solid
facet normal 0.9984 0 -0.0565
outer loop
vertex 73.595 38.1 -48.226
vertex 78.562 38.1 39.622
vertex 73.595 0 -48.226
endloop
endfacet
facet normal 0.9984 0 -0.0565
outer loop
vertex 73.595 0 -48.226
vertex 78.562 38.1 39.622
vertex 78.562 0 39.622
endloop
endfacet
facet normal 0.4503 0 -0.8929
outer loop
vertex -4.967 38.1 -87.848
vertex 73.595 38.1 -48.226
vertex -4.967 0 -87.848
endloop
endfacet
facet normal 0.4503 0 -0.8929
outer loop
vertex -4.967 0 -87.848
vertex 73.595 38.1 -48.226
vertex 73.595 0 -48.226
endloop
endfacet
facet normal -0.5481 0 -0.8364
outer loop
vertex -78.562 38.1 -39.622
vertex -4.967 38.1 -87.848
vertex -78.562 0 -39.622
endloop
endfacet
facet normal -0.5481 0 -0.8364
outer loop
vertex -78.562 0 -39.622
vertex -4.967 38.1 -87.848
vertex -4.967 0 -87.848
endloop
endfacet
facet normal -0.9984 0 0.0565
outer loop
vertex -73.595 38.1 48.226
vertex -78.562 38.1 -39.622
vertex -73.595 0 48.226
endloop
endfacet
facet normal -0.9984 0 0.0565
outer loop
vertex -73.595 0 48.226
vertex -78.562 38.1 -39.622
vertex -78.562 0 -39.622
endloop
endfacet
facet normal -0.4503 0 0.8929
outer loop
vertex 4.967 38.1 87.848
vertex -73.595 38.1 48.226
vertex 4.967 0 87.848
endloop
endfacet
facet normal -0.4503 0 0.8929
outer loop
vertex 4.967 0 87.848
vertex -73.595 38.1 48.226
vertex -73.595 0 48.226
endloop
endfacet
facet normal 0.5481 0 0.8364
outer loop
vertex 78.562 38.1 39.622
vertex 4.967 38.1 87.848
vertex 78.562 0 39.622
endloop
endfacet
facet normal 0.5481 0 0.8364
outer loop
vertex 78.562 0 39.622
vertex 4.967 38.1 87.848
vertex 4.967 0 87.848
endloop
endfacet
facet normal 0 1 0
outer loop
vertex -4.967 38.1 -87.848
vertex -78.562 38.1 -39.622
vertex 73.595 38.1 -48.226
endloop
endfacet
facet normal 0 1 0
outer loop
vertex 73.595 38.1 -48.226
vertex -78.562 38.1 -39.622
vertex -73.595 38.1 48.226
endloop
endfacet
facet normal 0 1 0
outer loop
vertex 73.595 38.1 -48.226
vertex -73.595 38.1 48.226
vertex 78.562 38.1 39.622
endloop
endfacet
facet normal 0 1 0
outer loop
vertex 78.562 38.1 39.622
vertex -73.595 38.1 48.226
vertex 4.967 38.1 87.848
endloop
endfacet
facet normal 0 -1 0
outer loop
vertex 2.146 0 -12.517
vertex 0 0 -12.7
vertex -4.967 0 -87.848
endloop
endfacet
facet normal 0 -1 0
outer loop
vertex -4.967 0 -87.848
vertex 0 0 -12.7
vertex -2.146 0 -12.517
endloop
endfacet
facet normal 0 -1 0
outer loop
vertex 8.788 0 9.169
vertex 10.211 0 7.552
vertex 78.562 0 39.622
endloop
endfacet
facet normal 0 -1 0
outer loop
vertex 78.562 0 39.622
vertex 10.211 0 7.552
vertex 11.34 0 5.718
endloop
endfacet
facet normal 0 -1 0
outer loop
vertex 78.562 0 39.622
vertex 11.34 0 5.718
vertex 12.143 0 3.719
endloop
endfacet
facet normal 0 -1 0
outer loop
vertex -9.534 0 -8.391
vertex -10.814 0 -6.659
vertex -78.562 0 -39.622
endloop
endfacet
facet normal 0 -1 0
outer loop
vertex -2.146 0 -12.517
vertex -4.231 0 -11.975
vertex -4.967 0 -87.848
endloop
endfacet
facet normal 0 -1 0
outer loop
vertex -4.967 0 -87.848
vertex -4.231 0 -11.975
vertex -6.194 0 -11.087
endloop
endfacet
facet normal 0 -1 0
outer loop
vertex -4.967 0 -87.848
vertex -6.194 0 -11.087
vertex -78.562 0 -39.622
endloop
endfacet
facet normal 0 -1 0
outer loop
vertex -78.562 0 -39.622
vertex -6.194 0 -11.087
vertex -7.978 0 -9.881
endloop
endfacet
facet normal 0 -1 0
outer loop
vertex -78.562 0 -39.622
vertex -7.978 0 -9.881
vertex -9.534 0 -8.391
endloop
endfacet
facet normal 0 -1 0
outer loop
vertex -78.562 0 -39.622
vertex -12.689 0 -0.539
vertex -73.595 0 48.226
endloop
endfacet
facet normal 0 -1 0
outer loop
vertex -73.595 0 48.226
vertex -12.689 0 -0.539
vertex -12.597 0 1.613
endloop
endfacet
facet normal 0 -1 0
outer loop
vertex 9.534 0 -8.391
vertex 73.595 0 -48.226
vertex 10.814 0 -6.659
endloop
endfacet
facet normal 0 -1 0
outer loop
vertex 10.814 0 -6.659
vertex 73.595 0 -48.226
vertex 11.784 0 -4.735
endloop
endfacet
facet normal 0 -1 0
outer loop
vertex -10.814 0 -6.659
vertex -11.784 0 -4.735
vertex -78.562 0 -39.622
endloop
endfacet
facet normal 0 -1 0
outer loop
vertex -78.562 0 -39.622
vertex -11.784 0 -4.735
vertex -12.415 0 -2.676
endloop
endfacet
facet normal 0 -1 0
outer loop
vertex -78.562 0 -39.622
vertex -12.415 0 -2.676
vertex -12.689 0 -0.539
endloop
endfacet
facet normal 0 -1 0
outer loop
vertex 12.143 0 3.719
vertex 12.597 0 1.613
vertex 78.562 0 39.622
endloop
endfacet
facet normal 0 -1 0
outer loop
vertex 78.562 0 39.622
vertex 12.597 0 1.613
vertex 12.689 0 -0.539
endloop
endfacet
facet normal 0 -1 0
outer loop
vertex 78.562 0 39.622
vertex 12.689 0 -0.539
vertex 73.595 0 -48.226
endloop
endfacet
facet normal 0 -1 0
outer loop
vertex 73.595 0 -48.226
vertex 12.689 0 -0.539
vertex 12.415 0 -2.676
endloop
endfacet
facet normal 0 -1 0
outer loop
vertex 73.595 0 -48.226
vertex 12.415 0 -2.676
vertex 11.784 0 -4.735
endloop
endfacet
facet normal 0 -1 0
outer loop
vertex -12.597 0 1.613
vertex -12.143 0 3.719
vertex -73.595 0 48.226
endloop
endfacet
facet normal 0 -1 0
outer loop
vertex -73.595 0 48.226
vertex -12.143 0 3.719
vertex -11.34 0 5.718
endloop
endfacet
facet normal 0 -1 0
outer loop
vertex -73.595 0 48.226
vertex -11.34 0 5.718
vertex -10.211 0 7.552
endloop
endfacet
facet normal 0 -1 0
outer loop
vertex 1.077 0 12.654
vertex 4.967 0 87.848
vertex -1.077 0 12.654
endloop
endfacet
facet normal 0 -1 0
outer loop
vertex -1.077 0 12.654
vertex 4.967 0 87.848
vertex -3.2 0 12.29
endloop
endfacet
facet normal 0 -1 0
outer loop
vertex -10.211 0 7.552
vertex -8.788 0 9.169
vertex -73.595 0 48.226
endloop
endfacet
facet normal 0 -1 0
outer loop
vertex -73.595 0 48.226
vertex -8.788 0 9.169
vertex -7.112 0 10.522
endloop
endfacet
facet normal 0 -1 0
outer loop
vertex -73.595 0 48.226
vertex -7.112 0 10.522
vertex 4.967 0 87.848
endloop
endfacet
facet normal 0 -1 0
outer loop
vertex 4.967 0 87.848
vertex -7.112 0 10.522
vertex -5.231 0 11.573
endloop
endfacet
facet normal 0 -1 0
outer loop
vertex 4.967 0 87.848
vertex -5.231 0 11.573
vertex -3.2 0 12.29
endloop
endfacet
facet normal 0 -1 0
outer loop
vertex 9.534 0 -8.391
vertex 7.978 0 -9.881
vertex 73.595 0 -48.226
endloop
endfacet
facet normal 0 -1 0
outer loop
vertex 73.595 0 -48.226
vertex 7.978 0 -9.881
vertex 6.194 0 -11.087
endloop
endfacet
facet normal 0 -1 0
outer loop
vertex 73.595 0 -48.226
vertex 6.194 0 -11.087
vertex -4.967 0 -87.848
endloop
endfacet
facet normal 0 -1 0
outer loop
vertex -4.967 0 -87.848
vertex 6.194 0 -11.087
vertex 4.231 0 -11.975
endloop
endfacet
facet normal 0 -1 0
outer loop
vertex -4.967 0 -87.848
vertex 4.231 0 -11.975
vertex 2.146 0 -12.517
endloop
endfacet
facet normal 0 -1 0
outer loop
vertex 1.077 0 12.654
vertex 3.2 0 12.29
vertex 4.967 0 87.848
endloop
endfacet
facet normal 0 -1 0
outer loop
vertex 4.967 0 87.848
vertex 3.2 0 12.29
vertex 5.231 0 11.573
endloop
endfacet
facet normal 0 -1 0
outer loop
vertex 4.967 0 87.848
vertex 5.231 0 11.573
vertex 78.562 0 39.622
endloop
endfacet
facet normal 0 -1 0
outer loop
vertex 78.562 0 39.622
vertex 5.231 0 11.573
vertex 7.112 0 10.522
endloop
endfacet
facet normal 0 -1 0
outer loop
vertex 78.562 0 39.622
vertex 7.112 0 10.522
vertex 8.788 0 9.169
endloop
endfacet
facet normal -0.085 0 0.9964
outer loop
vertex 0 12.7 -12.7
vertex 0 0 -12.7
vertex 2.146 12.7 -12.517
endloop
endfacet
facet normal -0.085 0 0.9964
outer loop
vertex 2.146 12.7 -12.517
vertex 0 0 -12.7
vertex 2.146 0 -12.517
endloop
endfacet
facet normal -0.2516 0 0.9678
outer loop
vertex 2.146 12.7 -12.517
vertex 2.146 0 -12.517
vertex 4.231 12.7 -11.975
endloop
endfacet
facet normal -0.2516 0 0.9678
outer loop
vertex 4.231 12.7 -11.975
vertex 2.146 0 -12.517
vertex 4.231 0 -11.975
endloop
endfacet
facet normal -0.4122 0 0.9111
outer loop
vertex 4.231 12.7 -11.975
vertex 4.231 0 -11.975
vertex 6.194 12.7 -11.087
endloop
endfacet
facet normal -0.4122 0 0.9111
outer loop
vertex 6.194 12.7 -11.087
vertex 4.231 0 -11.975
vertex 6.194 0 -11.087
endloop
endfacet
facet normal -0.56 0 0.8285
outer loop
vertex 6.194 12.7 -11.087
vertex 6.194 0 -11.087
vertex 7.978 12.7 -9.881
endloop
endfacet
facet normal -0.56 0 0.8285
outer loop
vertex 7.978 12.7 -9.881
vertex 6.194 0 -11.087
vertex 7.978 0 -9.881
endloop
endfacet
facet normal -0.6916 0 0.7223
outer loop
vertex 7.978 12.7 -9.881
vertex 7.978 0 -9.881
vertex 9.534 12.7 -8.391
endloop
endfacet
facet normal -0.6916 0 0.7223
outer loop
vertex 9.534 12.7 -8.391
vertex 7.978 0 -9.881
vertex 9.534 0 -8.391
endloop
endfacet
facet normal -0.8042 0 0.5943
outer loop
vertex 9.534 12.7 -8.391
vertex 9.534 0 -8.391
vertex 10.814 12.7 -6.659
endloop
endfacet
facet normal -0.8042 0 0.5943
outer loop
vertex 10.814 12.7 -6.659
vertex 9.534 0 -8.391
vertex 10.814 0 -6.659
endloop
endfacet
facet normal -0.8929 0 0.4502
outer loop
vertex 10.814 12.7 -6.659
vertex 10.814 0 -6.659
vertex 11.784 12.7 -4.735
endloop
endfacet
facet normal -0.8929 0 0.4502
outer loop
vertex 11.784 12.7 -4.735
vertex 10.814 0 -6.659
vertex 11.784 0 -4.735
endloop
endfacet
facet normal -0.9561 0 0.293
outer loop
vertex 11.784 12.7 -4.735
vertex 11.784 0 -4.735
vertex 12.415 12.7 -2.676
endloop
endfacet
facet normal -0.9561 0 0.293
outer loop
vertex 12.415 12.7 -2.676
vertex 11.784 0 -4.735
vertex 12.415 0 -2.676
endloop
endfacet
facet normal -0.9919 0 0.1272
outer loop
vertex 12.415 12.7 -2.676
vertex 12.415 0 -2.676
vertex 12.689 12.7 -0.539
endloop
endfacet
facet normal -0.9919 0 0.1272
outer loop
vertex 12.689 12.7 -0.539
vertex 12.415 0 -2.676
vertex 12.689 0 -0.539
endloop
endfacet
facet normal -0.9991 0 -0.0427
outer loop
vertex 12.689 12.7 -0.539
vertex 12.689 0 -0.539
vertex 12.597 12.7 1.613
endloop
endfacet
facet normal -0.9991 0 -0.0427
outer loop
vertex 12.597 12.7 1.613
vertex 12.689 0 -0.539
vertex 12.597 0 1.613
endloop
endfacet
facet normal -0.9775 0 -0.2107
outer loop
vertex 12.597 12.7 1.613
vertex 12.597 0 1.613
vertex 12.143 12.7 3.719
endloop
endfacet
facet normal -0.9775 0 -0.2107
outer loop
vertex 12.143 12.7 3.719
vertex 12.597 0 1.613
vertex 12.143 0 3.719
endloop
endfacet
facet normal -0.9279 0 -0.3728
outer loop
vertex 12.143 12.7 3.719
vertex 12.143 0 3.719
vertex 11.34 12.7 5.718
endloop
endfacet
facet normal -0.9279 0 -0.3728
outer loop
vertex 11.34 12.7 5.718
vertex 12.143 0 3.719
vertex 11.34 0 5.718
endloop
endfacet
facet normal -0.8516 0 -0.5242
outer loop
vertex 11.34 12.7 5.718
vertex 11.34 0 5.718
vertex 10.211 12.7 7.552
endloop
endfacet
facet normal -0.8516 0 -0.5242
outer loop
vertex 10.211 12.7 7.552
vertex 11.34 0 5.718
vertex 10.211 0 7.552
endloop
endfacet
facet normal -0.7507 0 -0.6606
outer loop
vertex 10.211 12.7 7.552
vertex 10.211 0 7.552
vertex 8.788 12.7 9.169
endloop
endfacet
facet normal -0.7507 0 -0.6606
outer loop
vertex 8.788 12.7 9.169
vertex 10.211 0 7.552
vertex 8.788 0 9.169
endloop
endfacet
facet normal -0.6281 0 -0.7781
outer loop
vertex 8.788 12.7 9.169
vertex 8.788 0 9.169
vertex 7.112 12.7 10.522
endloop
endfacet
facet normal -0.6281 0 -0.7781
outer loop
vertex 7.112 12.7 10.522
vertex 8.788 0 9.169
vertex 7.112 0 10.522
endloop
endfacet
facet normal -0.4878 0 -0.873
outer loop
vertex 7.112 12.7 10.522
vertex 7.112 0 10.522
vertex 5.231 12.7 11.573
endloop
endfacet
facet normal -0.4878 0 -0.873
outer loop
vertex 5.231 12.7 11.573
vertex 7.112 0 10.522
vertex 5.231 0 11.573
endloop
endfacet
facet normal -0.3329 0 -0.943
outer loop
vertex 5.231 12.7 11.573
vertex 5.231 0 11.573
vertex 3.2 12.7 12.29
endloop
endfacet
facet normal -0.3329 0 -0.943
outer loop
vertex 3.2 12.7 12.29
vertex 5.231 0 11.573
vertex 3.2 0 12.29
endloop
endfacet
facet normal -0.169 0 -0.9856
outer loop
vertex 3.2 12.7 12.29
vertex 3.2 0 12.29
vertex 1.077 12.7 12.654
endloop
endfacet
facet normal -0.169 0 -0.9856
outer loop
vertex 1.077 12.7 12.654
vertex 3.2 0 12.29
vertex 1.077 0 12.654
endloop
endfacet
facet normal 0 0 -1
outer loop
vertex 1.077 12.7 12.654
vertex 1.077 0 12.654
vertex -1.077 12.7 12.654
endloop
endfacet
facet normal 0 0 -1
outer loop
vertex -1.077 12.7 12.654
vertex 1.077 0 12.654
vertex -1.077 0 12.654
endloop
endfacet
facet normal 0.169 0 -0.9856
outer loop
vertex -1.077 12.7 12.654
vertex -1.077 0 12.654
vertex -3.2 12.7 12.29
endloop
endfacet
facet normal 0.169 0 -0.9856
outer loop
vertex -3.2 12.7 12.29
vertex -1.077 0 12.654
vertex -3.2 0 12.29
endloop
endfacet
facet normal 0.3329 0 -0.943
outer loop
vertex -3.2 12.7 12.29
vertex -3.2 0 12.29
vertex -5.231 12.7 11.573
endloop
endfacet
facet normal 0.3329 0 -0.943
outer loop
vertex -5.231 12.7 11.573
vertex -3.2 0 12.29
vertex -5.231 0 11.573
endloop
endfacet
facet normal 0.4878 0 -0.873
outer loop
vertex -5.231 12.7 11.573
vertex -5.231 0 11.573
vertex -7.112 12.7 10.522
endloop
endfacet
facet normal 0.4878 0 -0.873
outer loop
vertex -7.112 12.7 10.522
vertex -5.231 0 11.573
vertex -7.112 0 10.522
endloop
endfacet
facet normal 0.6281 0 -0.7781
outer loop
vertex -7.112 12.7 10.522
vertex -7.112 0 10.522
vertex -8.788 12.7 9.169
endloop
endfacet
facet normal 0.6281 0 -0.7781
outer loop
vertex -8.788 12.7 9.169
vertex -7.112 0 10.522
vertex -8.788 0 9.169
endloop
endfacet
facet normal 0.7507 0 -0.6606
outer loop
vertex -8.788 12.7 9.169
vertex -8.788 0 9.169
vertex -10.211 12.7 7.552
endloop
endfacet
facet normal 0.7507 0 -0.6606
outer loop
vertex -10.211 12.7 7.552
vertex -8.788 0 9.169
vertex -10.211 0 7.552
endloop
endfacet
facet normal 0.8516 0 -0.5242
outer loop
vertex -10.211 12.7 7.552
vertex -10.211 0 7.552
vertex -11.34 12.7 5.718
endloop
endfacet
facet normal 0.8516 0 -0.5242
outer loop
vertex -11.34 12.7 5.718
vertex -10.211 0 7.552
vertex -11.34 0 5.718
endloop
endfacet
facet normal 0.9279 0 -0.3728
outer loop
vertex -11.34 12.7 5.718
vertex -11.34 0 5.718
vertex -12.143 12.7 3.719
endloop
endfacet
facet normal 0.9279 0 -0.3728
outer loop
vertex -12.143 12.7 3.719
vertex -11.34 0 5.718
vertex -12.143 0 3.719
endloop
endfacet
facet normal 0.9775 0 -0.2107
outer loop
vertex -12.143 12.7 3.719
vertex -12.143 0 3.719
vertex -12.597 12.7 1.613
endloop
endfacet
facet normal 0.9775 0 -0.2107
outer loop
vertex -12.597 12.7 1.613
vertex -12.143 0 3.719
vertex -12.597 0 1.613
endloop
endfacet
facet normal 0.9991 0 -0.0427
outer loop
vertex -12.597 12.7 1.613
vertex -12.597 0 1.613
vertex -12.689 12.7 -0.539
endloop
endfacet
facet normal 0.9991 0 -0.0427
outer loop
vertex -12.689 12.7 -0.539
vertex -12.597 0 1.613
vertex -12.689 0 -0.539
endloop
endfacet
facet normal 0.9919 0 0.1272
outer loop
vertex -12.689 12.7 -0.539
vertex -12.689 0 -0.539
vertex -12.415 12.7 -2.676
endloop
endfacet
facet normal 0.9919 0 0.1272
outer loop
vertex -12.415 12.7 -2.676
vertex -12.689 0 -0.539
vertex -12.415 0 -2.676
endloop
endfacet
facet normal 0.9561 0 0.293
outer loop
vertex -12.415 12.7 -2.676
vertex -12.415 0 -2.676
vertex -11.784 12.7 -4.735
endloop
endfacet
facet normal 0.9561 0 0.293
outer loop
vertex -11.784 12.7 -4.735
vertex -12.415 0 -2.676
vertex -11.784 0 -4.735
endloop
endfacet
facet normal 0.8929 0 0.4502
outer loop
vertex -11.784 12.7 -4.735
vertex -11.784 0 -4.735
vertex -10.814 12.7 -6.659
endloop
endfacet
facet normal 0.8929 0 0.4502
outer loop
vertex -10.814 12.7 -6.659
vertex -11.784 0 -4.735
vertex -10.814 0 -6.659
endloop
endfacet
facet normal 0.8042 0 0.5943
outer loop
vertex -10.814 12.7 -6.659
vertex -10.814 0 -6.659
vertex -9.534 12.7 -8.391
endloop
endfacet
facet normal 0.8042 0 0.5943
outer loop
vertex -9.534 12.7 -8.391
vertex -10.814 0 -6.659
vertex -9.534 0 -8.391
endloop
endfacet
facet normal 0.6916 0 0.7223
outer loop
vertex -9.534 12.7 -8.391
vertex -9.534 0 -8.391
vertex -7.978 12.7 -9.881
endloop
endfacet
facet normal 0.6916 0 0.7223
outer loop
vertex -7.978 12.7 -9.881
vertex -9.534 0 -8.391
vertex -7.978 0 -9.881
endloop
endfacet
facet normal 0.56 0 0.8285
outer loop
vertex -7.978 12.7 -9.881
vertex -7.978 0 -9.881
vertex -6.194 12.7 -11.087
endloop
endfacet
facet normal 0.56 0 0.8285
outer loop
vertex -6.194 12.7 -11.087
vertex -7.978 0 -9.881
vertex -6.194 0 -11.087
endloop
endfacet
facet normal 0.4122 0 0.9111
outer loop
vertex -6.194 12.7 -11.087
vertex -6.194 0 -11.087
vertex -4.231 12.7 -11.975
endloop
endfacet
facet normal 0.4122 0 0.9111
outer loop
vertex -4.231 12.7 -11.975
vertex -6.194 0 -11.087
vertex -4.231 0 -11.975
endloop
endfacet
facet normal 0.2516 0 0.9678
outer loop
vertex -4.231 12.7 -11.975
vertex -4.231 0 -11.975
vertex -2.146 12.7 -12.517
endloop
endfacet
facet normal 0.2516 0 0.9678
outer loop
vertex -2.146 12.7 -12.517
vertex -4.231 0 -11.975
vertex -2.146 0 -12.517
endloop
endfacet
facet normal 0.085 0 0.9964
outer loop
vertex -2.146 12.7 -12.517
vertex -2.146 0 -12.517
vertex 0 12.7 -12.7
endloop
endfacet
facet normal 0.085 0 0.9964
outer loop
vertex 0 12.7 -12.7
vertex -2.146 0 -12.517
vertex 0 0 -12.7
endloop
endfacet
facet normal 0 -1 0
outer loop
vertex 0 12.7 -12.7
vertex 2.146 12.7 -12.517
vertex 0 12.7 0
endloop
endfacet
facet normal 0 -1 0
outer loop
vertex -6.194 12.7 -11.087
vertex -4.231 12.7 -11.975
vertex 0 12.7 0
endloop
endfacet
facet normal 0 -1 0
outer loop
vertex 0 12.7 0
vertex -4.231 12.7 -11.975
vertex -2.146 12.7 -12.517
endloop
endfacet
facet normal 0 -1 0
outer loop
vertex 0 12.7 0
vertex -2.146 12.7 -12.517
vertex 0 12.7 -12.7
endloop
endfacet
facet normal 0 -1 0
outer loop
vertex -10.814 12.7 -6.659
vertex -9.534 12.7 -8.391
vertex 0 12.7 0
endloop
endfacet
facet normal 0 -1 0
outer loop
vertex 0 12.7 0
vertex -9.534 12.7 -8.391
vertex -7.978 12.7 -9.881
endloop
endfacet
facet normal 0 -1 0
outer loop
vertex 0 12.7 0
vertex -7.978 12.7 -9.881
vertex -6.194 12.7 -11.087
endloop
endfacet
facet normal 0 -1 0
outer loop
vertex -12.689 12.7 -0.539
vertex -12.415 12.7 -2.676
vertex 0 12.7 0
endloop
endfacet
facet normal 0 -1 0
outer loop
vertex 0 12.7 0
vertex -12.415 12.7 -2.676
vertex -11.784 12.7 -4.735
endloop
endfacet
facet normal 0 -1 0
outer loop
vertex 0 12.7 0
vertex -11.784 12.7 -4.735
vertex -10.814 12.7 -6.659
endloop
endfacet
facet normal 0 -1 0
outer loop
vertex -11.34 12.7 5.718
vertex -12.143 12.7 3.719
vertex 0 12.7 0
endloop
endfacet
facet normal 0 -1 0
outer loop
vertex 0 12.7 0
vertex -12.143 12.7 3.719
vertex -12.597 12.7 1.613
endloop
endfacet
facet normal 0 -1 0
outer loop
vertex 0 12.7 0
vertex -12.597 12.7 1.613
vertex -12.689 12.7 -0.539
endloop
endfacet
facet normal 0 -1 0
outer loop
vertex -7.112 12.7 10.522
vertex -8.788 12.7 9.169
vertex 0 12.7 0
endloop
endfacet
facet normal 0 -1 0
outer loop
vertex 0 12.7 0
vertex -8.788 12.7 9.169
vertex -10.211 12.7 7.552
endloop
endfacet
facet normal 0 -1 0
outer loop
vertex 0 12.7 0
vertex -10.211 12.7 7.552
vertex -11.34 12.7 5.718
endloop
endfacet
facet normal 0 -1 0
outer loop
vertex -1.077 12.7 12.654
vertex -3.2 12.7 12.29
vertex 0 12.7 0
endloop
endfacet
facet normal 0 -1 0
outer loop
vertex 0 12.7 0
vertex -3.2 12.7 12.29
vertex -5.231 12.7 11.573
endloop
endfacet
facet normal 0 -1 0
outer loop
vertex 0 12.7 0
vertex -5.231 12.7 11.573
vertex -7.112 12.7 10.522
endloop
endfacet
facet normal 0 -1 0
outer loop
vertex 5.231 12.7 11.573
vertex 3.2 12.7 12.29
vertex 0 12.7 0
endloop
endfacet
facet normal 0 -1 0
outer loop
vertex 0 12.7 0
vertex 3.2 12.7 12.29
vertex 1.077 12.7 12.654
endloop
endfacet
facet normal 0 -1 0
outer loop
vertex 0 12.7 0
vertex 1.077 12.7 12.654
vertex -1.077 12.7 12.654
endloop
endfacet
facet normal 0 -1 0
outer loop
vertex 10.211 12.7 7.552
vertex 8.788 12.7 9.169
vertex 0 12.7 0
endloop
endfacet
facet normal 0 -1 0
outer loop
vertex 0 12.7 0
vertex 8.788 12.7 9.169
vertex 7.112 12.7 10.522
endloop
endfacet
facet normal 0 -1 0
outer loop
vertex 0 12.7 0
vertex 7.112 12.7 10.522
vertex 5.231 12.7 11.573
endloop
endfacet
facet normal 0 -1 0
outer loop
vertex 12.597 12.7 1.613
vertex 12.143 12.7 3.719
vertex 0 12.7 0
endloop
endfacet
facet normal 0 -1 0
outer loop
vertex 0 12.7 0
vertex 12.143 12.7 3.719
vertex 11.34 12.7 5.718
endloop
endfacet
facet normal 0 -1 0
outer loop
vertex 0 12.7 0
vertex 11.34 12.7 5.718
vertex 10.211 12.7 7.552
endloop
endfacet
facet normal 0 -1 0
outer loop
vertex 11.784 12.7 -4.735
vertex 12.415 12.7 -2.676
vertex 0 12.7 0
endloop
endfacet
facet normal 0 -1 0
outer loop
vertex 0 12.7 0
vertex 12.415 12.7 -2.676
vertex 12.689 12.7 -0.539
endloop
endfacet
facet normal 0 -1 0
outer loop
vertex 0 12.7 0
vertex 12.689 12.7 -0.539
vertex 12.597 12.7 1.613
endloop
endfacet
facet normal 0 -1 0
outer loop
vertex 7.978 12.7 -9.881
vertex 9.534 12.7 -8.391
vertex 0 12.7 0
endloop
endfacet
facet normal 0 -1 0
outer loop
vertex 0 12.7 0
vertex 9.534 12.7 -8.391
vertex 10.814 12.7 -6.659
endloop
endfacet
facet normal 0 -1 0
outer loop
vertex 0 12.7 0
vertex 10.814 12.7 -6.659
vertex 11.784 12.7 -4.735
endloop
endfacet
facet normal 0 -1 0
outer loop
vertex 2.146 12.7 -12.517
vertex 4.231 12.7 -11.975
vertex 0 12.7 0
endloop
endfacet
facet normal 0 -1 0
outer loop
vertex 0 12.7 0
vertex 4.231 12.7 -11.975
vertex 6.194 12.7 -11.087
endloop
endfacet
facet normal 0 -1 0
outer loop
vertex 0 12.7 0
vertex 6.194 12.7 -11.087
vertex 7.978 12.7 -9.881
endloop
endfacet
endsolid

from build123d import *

# Parameters (mm, degrees)
BOSS_EXTRUDE1_DEPTH = 38.1
SKETCH2_R           = 12.7
CUT_EXTRUDE1_DEPTH  = 12.7


with BuildPart() as part:
    # Sketch1 → Boss-Extrude1 (new body)
    with BuildSketch(Plane(origin=(0, 0, 0), x_dir=(1, 0, 0), z_dir=(0, 1, 0))):
        Polygon((73.594904868, 48.225615366), (-4.967155586, 87.847864888), (-78.562060454, 39.622249522), (-73.594904868, -48.225615366), (4.967155586, -87.847864888), (78.562060454, -39.622249522), align=None)
    extrude(amount=BOSS_EXTRUDE1_DEPTH)

    # Sketch2 → Cut-Extrude1 (cut)
    with BuildSketch(Plane.XZ):
        Circle(SKETCH2_R)
    extrude(amount=-CUT_EXTRUDE1_DEPTH, mode=Mode.SUBTRACT)


solid = part.part
